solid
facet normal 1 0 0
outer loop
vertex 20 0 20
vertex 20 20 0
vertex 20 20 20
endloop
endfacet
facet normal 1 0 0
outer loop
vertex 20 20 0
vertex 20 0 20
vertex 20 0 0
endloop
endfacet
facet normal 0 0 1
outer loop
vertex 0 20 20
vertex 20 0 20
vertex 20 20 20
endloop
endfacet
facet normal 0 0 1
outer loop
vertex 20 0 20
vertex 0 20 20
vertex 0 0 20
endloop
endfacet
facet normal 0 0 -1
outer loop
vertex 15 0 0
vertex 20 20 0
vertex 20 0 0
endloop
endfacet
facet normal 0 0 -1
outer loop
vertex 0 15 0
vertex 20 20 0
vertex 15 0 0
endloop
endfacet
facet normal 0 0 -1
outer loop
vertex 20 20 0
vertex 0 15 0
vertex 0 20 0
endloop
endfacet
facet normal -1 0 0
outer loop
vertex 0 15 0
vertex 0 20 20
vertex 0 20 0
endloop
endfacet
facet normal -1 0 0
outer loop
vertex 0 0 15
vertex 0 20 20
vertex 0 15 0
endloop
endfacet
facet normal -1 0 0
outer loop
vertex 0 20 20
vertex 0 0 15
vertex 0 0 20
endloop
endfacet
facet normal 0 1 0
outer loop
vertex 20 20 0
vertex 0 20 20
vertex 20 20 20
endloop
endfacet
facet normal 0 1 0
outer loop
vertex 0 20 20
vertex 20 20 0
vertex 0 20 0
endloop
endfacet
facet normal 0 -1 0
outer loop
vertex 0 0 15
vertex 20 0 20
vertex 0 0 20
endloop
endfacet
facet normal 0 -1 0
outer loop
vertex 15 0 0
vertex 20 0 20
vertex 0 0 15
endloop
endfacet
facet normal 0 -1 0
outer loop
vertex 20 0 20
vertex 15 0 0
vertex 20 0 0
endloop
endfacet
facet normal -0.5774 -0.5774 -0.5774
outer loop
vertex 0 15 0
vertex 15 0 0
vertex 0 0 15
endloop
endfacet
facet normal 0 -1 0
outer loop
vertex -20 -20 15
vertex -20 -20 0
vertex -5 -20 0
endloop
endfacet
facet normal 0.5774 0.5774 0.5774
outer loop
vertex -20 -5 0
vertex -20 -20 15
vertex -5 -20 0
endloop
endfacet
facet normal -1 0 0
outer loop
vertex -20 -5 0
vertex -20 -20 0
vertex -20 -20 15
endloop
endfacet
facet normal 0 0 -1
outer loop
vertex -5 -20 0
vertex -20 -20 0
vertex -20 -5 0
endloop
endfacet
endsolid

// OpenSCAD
W=20;
D=15;

module cutout_cube() {
    difference() {
        cube([W,W,W]);
        poly();
    }
}

module poly() {
    #polyhedron(points=[[0,0,0],     // origin
                        [D,0,0],     // on x axis
                        [0,D,0],     // on y axis
                        [0,0,D]],    // on z axis
                faces=[[0,3,1],      // on x axis
                       [0,2,3],      // on y axis
                       [0,1,2],      // on z axis
                       [1,3,2]]);    // diagonal
}

cutout_cube();
translate([-20,-20,0]) poly();
